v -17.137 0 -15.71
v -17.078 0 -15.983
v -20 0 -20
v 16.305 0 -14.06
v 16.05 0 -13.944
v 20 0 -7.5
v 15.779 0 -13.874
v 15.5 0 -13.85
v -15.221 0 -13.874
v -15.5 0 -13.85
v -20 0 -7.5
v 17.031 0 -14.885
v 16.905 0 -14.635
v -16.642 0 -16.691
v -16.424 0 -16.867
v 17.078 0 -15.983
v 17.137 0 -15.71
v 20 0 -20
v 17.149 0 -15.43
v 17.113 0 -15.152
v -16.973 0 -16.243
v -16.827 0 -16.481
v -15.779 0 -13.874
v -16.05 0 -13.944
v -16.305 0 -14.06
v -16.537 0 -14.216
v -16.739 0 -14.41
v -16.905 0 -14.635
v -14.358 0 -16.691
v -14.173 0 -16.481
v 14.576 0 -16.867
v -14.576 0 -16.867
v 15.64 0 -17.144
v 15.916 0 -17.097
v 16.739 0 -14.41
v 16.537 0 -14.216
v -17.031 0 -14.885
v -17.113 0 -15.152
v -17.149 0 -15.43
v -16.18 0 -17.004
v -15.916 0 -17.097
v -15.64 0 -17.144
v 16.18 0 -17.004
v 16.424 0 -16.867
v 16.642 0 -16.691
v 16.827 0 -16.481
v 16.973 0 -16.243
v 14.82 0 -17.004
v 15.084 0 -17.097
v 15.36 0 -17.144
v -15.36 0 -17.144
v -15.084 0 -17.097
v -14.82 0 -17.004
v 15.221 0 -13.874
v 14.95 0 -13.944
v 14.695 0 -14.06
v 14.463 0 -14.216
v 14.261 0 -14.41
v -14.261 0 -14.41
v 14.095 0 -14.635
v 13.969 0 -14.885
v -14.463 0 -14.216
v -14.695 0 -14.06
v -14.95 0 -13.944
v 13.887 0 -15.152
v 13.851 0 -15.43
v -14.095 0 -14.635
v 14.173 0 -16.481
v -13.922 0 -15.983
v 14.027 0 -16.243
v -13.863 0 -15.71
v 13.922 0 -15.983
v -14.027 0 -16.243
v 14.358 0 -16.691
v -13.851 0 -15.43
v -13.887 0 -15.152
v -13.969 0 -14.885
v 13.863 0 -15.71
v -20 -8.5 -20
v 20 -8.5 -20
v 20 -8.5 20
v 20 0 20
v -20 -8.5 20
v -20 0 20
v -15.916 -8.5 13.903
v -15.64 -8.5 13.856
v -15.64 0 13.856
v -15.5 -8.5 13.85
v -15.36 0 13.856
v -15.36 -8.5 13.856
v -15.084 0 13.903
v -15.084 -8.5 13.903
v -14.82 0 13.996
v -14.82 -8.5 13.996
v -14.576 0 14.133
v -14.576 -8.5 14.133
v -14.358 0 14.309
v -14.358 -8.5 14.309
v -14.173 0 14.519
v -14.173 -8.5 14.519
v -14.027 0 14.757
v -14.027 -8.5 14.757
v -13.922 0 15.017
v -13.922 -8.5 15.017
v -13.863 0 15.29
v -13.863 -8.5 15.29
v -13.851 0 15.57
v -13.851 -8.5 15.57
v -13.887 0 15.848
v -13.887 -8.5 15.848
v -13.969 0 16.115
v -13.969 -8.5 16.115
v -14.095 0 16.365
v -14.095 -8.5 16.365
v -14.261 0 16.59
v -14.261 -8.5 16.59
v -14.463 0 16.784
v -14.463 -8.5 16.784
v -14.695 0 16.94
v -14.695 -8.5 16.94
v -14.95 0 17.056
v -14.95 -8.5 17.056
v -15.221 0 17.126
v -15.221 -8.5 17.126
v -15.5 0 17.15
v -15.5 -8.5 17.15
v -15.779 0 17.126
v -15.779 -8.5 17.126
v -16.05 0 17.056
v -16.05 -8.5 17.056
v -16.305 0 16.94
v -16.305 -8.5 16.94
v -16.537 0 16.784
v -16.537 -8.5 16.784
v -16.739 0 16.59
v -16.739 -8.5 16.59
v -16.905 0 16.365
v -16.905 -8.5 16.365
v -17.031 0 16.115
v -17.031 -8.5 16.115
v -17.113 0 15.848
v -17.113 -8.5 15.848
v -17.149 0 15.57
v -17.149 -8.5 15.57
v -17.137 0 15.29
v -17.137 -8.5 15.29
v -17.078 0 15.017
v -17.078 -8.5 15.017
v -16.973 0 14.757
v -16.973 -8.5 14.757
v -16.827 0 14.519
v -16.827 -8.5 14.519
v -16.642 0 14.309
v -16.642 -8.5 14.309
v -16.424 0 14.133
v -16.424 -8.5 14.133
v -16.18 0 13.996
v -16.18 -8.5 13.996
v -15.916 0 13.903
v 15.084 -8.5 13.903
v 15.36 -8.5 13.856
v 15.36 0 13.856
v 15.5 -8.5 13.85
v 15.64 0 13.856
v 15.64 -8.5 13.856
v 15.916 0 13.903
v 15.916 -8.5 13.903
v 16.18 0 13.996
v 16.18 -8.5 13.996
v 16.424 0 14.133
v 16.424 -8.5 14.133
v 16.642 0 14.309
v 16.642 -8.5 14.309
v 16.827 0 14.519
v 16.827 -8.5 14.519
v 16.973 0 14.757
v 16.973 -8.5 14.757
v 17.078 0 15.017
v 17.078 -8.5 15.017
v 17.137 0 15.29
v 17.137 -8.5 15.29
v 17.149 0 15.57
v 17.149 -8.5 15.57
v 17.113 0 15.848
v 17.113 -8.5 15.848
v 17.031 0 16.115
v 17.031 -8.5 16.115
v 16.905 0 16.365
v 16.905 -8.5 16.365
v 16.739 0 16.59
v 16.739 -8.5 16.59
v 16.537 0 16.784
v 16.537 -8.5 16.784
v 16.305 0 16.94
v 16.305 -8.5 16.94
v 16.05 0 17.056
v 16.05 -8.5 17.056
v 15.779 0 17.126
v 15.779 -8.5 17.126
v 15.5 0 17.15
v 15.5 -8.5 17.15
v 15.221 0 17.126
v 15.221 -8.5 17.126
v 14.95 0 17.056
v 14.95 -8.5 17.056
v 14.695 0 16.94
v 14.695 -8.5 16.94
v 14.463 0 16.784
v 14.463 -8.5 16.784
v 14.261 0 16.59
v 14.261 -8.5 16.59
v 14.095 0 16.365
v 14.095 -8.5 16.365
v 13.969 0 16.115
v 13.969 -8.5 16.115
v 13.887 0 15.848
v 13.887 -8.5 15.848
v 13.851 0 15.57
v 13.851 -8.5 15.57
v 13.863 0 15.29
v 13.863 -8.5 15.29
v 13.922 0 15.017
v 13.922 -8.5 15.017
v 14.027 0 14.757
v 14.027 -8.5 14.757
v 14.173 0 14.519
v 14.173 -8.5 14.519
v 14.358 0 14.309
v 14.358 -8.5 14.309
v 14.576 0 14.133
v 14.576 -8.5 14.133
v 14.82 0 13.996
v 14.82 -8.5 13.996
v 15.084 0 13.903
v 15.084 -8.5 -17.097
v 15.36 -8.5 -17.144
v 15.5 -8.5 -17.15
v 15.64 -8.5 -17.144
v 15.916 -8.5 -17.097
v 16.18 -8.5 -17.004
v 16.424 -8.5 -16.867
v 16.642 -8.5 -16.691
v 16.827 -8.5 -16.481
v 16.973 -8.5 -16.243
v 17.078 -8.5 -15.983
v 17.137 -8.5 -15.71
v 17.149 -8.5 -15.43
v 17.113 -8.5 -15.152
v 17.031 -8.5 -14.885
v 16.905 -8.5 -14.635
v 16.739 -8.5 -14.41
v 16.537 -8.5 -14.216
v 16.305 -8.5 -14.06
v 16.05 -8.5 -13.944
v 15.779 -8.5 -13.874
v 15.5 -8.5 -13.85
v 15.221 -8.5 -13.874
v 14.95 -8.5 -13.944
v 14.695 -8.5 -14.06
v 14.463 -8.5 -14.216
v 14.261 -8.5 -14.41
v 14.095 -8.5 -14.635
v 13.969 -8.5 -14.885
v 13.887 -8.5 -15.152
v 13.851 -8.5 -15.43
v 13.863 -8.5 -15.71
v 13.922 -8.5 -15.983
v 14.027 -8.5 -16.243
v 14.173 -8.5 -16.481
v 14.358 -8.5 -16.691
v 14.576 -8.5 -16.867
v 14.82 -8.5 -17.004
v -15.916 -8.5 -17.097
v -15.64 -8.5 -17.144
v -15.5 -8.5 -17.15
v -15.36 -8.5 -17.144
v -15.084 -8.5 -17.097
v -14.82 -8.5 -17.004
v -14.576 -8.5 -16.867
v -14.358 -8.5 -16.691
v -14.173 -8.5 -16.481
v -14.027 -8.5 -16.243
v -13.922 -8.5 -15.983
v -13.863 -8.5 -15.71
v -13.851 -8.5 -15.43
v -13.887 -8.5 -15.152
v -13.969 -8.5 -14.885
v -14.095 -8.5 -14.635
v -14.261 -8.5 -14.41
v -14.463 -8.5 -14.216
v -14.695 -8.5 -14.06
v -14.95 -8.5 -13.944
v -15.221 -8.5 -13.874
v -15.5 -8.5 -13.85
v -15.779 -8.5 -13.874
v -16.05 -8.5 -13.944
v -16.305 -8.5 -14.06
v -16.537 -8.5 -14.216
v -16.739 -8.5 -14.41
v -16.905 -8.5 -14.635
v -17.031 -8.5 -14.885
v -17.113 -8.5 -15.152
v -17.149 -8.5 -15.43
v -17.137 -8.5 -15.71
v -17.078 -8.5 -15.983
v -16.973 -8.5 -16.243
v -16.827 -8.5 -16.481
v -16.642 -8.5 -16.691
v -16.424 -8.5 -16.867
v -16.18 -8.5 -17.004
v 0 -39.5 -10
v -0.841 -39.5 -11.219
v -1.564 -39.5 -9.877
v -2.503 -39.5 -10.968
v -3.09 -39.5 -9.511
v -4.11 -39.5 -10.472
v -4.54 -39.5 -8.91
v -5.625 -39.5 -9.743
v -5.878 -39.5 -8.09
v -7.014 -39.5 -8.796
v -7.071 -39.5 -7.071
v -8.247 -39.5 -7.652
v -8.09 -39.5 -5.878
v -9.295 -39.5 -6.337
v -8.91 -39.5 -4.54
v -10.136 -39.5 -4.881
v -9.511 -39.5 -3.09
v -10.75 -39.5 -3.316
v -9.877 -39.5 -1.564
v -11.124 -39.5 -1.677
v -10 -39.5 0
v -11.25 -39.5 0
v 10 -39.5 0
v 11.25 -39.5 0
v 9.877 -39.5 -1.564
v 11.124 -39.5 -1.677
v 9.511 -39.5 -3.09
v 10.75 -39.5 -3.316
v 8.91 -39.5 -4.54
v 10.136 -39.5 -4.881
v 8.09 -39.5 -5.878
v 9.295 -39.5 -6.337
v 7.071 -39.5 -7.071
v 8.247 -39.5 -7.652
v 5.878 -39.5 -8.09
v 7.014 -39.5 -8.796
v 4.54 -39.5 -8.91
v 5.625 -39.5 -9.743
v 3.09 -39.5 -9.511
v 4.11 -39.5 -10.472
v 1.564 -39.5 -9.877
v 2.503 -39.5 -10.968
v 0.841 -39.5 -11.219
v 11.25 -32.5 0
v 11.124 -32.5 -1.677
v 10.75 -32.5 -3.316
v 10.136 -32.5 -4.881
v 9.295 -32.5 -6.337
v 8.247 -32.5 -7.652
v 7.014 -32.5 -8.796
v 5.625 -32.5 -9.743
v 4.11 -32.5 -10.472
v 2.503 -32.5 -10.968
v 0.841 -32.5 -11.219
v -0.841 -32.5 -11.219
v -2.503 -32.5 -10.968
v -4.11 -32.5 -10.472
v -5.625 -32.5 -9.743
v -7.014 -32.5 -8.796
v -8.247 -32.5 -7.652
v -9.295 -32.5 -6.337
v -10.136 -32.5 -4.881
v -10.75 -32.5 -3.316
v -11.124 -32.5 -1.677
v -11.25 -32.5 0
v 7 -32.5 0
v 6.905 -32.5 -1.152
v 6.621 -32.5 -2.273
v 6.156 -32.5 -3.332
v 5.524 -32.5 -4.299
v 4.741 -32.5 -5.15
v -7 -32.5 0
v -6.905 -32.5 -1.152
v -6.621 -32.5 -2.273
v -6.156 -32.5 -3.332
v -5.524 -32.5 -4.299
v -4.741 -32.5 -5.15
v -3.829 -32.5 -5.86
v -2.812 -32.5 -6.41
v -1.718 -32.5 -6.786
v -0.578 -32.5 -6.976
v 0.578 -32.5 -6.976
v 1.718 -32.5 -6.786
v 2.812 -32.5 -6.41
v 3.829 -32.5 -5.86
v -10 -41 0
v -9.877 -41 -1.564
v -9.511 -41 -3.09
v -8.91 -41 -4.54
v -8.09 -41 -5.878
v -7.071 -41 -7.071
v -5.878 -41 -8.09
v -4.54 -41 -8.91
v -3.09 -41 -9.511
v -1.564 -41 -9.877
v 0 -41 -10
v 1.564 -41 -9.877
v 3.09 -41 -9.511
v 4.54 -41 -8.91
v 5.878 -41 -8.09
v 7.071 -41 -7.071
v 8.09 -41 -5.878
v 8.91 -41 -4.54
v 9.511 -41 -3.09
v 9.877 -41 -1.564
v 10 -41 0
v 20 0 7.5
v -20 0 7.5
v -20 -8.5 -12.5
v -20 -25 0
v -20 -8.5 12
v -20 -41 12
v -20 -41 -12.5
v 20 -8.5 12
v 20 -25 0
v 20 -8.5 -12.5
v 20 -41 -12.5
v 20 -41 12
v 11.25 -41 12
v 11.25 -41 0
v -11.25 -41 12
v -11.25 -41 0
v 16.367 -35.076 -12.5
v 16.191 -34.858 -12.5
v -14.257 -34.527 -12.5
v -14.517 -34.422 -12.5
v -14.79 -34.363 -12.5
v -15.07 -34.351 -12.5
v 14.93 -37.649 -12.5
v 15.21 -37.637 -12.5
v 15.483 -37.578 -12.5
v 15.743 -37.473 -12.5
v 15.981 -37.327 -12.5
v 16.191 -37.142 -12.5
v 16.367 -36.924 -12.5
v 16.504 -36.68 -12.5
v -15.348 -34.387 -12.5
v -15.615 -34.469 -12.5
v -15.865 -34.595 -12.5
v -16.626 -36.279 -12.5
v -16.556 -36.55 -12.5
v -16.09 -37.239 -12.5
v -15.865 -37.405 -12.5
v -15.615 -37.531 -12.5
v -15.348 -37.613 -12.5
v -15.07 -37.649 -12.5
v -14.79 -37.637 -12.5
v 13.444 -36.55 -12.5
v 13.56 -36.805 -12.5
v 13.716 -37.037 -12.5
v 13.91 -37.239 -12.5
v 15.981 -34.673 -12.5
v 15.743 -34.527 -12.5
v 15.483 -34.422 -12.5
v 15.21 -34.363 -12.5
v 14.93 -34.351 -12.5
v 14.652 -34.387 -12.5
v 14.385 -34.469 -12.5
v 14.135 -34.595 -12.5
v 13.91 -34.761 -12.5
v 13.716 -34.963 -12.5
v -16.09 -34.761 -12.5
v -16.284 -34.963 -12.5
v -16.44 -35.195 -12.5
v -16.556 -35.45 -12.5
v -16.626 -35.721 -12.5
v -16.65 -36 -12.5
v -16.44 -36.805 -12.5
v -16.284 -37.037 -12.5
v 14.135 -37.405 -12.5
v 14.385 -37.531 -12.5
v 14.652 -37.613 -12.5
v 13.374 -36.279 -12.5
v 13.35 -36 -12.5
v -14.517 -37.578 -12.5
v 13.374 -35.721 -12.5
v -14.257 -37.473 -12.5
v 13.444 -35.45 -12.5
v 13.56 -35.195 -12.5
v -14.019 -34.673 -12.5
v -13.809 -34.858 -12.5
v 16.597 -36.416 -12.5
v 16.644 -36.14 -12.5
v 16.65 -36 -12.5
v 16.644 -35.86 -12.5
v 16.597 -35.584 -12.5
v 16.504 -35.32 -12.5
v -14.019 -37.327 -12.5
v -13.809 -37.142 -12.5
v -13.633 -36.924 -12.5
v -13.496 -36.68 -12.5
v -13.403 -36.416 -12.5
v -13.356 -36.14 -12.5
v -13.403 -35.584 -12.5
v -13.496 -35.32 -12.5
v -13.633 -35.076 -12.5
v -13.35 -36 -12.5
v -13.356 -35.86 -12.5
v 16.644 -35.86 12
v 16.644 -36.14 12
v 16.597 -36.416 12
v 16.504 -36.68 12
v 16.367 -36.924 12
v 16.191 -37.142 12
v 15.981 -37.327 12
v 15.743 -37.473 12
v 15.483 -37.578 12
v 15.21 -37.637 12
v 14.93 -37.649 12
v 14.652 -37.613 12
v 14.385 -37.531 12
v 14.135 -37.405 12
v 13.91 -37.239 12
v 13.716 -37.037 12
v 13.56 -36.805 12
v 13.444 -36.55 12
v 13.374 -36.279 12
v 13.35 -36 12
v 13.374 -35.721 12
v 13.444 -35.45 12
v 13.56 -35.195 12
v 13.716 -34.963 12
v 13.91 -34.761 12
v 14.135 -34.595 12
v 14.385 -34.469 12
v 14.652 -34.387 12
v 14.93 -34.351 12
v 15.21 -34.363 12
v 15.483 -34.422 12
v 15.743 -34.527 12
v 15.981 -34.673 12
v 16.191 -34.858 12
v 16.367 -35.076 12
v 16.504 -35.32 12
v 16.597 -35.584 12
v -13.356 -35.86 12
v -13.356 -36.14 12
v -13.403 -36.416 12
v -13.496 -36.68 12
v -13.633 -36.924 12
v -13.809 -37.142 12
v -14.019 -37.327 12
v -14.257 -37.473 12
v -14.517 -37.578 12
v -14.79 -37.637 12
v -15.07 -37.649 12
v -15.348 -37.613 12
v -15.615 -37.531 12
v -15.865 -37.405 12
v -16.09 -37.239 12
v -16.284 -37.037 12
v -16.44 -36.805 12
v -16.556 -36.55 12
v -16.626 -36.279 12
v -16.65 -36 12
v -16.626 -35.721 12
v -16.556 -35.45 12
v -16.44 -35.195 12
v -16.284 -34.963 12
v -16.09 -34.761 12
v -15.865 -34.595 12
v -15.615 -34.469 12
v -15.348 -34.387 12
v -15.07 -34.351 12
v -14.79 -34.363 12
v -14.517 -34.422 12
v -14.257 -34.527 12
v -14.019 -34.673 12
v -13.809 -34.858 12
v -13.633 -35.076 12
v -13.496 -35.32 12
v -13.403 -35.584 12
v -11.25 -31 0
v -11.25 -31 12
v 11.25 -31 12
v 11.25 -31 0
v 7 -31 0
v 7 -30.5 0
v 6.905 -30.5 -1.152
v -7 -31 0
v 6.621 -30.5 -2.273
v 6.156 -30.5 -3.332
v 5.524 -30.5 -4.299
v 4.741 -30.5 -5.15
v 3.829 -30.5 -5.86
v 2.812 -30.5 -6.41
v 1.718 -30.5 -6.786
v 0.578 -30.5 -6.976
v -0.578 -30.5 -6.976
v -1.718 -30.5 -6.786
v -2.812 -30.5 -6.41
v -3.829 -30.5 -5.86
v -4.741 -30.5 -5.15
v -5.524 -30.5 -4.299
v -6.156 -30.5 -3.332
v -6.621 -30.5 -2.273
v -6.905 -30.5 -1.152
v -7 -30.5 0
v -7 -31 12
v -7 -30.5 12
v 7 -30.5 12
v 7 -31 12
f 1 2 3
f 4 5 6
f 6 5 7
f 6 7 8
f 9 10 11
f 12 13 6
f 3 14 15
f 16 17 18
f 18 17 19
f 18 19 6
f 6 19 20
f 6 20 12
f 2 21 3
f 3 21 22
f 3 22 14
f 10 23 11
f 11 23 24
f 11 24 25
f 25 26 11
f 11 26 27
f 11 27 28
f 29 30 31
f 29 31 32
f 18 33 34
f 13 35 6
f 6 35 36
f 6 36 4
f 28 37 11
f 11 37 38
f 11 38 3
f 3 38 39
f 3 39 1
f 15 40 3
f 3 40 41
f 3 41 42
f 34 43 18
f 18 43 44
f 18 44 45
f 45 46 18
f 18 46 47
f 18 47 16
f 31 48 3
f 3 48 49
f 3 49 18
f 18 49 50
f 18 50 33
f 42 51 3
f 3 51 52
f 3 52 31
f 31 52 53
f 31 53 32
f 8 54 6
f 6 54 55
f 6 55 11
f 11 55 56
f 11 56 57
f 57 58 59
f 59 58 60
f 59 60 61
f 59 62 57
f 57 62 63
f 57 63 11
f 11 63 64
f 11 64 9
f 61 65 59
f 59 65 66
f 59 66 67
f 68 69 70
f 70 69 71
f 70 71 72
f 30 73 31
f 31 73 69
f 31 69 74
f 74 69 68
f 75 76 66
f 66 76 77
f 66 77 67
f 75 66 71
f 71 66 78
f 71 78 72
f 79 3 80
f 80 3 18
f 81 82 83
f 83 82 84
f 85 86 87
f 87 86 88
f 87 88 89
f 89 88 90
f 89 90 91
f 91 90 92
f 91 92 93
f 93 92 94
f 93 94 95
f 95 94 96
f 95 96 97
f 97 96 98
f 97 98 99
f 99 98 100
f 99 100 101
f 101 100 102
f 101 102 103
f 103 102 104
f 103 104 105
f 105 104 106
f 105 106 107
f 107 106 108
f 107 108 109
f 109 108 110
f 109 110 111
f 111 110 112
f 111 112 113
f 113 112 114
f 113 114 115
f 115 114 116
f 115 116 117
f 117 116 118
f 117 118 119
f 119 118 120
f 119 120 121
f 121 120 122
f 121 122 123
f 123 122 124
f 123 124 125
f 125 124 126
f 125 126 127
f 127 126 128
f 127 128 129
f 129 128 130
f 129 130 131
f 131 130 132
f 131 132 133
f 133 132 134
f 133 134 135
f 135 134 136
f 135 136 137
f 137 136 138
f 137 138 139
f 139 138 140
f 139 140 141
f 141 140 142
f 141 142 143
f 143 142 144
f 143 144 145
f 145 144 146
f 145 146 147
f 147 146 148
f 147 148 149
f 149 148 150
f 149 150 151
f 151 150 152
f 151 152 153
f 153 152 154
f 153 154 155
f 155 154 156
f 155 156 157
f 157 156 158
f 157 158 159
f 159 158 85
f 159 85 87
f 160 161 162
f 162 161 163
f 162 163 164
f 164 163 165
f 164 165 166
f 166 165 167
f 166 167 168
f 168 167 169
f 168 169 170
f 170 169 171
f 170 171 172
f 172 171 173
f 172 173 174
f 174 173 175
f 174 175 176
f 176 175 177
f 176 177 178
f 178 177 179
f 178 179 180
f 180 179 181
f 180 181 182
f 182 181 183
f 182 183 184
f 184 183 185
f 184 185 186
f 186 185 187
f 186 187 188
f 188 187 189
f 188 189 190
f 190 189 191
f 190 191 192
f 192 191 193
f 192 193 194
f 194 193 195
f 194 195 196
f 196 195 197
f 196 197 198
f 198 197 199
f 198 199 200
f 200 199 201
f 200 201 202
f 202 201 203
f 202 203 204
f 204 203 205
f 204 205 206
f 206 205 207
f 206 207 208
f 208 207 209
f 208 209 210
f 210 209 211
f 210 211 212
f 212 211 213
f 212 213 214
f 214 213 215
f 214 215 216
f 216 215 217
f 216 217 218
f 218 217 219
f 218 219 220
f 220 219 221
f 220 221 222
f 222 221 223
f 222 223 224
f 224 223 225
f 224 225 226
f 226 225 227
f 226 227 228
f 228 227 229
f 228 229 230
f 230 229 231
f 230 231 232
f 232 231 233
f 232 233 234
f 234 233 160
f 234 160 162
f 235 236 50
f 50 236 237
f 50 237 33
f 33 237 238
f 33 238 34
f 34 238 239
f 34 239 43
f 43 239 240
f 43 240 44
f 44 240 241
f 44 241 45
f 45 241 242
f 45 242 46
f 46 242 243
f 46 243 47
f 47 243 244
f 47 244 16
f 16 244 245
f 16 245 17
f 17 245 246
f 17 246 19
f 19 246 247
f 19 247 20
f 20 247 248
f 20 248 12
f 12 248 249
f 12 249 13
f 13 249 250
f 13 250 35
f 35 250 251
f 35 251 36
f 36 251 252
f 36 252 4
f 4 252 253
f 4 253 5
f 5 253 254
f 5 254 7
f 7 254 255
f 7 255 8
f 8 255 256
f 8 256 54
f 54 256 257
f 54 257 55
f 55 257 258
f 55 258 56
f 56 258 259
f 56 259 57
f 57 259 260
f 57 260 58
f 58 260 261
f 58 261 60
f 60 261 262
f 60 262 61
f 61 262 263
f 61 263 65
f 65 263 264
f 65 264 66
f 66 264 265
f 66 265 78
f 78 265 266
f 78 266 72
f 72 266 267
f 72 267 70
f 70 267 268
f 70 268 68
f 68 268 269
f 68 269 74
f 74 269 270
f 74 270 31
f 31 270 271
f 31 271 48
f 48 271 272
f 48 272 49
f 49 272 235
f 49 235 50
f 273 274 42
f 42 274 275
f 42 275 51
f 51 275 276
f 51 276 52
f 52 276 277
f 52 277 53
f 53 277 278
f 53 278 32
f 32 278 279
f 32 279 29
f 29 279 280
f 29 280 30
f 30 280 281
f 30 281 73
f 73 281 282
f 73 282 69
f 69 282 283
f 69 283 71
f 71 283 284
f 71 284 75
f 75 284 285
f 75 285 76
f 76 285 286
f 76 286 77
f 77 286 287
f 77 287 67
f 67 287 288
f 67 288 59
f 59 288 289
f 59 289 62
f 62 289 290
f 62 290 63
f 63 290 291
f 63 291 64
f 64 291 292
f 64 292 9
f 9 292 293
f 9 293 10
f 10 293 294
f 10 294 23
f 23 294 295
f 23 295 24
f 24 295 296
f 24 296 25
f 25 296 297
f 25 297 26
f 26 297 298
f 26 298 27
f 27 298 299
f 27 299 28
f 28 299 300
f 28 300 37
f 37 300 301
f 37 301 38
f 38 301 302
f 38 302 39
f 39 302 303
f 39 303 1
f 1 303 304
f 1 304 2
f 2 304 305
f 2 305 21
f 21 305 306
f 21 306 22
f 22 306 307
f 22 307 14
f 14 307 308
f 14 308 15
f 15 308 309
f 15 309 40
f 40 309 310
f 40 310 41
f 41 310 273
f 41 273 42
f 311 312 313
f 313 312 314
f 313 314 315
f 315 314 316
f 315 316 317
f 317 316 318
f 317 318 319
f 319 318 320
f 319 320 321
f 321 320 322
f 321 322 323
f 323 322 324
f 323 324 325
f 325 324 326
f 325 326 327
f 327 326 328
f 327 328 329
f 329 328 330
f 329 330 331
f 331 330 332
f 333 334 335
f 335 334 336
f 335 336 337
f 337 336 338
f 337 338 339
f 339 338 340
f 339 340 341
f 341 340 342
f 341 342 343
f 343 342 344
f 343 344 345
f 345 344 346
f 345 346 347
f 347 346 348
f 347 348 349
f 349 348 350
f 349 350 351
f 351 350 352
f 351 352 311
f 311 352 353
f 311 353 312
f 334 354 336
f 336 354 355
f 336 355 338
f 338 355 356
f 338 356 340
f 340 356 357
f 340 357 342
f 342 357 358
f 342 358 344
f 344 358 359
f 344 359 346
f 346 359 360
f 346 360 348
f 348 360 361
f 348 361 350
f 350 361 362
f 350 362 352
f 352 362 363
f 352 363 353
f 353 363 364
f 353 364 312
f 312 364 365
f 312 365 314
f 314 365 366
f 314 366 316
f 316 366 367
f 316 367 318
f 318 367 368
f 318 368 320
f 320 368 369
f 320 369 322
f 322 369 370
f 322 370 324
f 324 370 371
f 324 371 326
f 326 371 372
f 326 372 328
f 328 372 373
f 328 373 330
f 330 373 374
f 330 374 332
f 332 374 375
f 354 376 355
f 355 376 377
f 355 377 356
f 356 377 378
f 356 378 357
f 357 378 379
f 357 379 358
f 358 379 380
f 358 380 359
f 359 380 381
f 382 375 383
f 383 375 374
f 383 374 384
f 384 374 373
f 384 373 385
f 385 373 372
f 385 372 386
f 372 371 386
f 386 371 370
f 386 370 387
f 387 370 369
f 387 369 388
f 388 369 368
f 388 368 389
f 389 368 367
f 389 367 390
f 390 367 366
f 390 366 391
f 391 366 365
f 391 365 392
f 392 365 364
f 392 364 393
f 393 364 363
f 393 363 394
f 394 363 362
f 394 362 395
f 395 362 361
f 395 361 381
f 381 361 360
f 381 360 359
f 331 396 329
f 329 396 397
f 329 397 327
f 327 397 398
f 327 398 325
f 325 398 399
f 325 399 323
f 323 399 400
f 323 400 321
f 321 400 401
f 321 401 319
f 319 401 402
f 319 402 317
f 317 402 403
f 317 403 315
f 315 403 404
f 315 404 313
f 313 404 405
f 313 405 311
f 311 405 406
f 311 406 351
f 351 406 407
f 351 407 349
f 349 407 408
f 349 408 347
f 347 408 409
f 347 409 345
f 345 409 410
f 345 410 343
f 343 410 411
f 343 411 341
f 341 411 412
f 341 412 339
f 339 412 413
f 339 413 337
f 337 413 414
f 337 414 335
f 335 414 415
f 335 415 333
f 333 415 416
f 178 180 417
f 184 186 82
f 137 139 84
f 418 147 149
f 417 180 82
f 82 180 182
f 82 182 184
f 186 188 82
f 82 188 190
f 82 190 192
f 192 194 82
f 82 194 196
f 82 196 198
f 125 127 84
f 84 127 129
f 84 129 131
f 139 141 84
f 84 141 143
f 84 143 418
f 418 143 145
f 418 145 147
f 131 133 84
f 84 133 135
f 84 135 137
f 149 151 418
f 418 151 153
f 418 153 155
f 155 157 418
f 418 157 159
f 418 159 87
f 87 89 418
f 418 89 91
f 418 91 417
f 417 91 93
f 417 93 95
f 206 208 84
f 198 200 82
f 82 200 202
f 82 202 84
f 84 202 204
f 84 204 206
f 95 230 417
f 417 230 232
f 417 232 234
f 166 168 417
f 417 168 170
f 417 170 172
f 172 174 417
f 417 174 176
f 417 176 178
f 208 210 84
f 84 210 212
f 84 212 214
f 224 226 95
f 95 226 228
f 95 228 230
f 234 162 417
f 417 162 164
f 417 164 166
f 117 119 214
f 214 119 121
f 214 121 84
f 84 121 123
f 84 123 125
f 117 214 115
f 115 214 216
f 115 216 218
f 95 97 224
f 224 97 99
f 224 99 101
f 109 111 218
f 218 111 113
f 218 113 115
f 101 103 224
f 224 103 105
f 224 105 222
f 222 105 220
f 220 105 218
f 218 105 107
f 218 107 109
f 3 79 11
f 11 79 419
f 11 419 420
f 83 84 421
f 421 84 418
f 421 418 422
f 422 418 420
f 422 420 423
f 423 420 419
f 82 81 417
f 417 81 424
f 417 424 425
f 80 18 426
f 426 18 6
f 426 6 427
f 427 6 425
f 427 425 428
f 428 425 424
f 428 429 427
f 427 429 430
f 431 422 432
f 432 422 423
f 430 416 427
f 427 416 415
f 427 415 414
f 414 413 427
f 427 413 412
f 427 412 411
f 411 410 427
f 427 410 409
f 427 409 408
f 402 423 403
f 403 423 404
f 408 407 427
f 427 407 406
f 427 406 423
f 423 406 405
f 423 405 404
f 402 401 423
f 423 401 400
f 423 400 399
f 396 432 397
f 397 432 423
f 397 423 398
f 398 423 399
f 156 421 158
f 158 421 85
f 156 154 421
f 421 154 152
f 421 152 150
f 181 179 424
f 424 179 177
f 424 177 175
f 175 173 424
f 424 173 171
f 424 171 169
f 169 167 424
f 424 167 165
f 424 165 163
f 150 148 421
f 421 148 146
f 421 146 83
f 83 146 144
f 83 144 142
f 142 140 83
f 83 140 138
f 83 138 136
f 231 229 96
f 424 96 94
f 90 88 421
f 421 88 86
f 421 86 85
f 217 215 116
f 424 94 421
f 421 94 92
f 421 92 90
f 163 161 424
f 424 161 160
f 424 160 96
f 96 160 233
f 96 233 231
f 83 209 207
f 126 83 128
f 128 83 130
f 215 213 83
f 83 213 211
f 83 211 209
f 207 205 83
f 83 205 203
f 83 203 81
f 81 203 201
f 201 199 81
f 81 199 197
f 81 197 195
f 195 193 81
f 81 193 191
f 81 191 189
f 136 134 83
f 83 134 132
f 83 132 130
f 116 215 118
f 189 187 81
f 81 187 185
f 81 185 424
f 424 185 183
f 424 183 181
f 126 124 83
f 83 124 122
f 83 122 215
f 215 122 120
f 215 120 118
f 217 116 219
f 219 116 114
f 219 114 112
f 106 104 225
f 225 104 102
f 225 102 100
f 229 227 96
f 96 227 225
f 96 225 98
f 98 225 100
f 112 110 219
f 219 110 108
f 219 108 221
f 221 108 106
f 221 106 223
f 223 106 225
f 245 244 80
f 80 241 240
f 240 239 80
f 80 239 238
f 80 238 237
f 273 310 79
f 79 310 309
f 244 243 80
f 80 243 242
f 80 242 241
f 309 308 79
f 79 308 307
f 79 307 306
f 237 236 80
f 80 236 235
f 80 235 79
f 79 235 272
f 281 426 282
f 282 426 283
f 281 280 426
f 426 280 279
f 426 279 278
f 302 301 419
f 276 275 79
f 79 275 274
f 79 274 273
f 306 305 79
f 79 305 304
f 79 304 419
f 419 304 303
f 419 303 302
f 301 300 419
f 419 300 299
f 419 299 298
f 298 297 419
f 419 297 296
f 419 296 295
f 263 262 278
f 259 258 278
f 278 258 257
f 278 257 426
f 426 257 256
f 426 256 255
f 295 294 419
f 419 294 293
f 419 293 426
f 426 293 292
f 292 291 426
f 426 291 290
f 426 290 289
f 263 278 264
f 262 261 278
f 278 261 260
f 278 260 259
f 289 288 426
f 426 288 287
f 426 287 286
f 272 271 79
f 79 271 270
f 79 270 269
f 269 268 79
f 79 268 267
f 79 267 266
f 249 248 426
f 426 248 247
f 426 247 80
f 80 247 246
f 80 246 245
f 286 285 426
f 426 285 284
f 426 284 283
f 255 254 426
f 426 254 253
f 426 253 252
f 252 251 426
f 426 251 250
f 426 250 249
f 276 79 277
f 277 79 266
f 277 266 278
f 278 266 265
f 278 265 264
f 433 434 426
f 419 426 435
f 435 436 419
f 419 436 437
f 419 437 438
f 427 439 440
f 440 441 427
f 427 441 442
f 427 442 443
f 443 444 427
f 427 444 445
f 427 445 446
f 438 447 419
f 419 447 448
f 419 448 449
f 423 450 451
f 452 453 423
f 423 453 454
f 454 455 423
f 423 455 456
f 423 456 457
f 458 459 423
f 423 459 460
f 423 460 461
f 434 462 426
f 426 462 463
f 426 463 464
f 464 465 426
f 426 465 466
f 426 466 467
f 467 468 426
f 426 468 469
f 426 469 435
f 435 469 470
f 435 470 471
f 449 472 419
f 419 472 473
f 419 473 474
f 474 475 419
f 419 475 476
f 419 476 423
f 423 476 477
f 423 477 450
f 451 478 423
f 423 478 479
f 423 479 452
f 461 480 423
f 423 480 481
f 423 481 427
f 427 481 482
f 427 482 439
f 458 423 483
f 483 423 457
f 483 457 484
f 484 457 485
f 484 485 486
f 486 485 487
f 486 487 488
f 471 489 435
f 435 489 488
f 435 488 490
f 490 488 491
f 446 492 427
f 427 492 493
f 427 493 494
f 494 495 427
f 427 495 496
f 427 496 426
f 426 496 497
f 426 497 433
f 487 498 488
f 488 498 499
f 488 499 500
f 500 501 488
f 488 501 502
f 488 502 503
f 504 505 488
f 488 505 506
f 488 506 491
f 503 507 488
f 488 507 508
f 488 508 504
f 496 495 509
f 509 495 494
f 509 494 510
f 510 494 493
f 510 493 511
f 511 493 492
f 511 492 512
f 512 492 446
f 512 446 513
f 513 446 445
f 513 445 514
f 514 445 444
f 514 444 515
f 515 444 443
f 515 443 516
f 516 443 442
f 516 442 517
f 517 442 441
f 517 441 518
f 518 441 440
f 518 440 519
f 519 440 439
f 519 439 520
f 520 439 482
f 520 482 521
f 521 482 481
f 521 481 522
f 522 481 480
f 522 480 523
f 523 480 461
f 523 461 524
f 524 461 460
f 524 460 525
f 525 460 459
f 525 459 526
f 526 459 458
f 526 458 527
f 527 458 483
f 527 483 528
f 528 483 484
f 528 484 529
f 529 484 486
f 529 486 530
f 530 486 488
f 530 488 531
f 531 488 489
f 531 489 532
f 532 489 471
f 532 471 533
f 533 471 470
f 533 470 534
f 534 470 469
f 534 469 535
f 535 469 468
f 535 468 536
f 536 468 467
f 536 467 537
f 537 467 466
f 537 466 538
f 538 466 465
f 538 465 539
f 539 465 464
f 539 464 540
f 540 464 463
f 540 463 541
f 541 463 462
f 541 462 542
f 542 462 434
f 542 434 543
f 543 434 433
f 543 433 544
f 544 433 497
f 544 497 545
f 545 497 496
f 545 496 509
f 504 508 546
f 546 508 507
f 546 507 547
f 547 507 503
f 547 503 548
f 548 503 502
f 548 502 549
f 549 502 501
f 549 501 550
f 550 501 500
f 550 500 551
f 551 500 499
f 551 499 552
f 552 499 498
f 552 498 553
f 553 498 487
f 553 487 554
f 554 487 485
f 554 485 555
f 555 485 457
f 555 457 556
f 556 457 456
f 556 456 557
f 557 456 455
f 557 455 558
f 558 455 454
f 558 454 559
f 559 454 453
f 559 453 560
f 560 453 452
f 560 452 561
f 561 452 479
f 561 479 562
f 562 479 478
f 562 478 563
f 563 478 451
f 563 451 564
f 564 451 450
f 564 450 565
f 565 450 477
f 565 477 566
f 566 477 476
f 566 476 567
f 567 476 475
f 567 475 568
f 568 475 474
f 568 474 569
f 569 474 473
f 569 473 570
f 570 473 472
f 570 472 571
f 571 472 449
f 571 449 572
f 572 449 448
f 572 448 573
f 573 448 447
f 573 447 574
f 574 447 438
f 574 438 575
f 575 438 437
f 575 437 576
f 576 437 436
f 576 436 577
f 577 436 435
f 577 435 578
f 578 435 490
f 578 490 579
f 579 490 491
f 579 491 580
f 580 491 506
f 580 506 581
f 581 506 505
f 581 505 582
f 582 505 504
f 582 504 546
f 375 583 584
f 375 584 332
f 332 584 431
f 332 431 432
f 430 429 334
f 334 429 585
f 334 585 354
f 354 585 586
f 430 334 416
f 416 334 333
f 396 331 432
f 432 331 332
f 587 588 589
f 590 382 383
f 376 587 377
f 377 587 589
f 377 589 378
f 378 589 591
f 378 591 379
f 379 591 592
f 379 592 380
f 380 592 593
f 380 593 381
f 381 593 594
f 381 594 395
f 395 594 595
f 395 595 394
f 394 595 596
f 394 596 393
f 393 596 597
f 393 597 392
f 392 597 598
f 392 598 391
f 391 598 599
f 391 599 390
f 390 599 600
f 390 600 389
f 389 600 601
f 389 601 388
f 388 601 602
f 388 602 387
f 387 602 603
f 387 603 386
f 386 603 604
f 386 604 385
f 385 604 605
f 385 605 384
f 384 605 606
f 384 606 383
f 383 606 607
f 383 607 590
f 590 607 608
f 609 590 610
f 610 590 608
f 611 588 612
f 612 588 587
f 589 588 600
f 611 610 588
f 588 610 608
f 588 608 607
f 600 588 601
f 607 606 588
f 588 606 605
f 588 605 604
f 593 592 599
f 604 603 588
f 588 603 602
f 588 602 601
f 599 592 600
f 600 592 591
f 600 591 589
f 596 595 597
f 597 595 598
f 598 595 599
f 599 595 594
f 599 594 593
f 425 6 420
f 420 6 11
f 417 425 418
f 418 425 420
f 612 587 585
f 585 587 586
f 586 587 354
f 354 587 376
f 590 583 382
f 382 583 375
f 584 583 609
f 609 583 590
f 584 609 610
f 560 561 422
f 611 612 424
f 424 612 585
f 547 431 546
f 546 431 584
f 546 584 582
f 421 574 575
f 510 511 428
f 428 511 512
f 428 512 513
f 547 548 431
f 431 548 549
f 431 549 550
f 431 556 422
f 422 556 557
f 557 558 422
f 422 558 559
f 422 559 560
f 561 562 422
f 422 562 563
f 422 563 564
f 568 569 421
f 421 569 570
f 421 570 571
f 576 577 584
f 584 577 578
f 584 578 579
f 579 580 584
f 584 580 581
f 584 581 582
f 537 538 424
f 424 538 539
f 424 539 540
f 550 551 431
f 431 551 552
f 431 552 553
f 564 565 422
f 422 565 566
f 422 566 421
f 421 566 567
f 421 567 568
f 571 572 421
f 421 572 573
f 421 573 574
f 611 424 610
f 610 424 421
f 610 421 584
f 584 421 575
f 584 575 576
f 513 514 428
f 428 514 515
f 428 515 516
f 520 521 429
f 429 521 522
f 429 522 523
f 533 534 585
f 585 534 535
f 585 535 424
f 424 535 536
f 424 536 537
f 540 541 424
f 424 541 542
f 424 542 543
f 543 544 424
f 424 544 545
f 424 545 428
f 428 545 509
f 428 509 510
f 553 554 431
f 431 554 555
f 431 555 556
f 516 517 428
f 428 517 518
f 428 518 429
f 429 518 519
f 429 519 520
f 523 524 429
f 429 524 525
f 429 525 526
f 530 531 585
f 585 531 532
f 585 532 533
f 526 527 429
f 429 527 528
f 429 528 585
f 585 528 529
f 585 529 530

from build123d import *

# Parameters (mm, degrees)
SKETCH1_W             = 40
SKETCH1_H             = 40
BOSS_EXTRUDE1_DEPTH   = 41
M4X0_7_TAPPED_HOLE1_D = 3.3
SKETCH11_W            = 11.25
SKETCH11_H            = 7
CUT_EXTRUDE5_REACH    = 43
SKETCH12_R            = 10
M4X0_7_TAPPED_HOLE2_D = 3.3
SKETCH15_W            = 40
SKETCH15_H            = 7.5
CUT_EXTRUDE6_DEPTH    = 32.5
SKETCH16_W            = 22.5
SKETCH16_H            = 7
CUT_EXTRUDE7_DEPTH    = 21
CUT_EXTRUDE8_REACH    = 43
SKETCH17_W            = 22.5
SKETCH17_H            = 12.5
CUT_EXTRUDE9_DEPTH    = 2
CUT_EXTRUDE10_DEPTH   = 41
SKETCH20_W            = 22.5
SKETCH20_H            = 10
CUT_EXTRUDE11_DEPTH   = 12.5
SKETCH21_W            = 0.5
SKETCH21_H            = 32.5
CUT_EXTRUDE12_DEPTH   = 41


with BuildPart() as part:
    # Sketch1 → Boss-Extrude1 (new body)
    with BuildSketch(Plane(origin=(0, 0, 0), x_dir=(1, 0, 0), z_dir=(0, 1, 0))):
        Rectangle(SKETCH1_W, SKETCH1_H)
    extrude(amount=-BOSS_EXTRUDE1_DEPTH)

    # M4x0.7 Tapped Hole1 (through all)
    with Locations(Plane(origin=(0, 0, 0), x_dir=(1, 0, 0), z_dir=(0, 1, 0))):
        with Locations((-15.5, 15.5), (15.5, 15.5), (15.5, -15.5), (-15.5, -15.5)):
            Hole(M4X0_7_TAPPED_HOLE1_D / 2)

    # Sketch11 → Cut-Revolve2 (revolve, cut)
    with BuildSketch(Plane.XY):
        with Locations((5.625, -36)):
            Rectangle(SKETCH11_W, SKETCH11_H)
    revolve(axis=Axis((0, 0, 0), (0, -1, 0)), mode=Mode.SUBTRACT)

    # Sketch12 → Cut-Extrude5 (cut, up to next)
    with BuildSketch(Plane.XZ.offset(41), mode=Mode.PRIVATE) as cut_extrude5_sk1:
        Circle(SKETCH12_R)
    cut_extrude5_tool1 = extrude(cut_extrude5_sk1.sketch, amount=-CUT_EXTRUDE5_REACH, mode=Mode.PRIVATE) & part.part
    add(cut_extrude5_tool1.solids().sort_by_distance((0, -41, 0))[0], mode=Mode.SUBTRACT)

    # M4x0.7 Tapped Hole2 (through all)
    with Locations(Plane(origin=(0, 0, -20), x_dir=(-1, 0, 0), z_dir=(0, 0, -1))):
        with Locations((15, -36), (-15, -36)):
            Hole(M4X0_7_TAPPED_HOLE2_D / 2)

    # Sketch15 → Cut-Extrude6 (cut)
    with BuildSketch(Plane.XZ.offset(41)):
        with Locations((0, -16.25)):
            Rectangle(SKETCH15_W, SKETCH15_H)
        with Locations((0, 16.25)):
            Rectangle(SKETCH15_W, SKETCH15_H)
    extrude(amount=-CUT_EXTRUDE6_DEPTH, mode=Mode.SUBTRACT)

    # Sketch16 → Cut-Extrude7 (cut, through all)
    with BuildSketch(Plane.XY):
        with Locations((0, -36)):
            Rectangle(SKETCH16_W, SKETCH16_H)
    extrude(amount=CUT_EXTRUDE7_DEPTH, mode=Mode.SUBTRACT)

    # Sketch17 → Cut-Extrude8 (cut, up to next)
    with BuildSketch(Plane.XZ.offset(41), mode=Mode.PRIVATE) as cut_extrude8_sk1:
        with Locations((0, 6.25)):
            Rectangle(SKETCH17_W, SKETCH17_H)
    cut_extrude8_tool1 = extrude(cut_extrude8_sk1.sketch, amount=-CUT_EXTRUDE8_REACH, mode=Mode.PRIVATE) & part.part
    add(cut_extrude8_tool1.solids().sort_by_distance((0, -41, 6.25))[0], mode=Mode.SUBTRACT)

    # Sketch18 → Cut-Extrude9 (cut)
    with BuildSketch(Plane.XZ.offset(32.5)):
        with BuildLine():
            Line((-7, 0), (-7, 12.5))
            Line((-7, 12.5), (7, 12.5))
            Line((7, 12.5), (7, 0))
            ThreePointArc((7, 0), (0, -7), (-7, 0))
        make_face()
    extrude(amount=-CUT_EXTRUDE9_DEPTH, mode=Mode.SUBTRACT)

    # Sketch19 → Cut-Extrude10 (cut, through all)
    with BuildSketch(Plane.ZY.offset(20)):
        Polygon((0, -25), (7.5, 0), (-7.5, 0), align=None)
    extrude(amount=-CUT_EXTRUDE10_DEPTH, mode=Mode.SUBTRACT)

    # Sketch20 → Cut-Extrude11 (cut)
    with BuildSketch(Plane.XY.offset(12.5)):
        with Locations((0, -36)):
            Rectangle(SKETCH20_W, SKETCH20_H)
    extrude(amount=-CUT_EXTRUDE11_DEPTH, mode=Mode.SUBTRACT)

    # Sketch21 → Cut-Extrude12 (cut, through all)
    with BuildSketch(Plane.ZY.offset(20)):
        with Locations((12.25, -24.75)):
            Rectangle(SKETCH21_W, SKETCH21_H)
    extrude(amount=-CUT_EXTRUDE12_DEPTH, mode=Mode.SUBTRACT)


solid = part.part
